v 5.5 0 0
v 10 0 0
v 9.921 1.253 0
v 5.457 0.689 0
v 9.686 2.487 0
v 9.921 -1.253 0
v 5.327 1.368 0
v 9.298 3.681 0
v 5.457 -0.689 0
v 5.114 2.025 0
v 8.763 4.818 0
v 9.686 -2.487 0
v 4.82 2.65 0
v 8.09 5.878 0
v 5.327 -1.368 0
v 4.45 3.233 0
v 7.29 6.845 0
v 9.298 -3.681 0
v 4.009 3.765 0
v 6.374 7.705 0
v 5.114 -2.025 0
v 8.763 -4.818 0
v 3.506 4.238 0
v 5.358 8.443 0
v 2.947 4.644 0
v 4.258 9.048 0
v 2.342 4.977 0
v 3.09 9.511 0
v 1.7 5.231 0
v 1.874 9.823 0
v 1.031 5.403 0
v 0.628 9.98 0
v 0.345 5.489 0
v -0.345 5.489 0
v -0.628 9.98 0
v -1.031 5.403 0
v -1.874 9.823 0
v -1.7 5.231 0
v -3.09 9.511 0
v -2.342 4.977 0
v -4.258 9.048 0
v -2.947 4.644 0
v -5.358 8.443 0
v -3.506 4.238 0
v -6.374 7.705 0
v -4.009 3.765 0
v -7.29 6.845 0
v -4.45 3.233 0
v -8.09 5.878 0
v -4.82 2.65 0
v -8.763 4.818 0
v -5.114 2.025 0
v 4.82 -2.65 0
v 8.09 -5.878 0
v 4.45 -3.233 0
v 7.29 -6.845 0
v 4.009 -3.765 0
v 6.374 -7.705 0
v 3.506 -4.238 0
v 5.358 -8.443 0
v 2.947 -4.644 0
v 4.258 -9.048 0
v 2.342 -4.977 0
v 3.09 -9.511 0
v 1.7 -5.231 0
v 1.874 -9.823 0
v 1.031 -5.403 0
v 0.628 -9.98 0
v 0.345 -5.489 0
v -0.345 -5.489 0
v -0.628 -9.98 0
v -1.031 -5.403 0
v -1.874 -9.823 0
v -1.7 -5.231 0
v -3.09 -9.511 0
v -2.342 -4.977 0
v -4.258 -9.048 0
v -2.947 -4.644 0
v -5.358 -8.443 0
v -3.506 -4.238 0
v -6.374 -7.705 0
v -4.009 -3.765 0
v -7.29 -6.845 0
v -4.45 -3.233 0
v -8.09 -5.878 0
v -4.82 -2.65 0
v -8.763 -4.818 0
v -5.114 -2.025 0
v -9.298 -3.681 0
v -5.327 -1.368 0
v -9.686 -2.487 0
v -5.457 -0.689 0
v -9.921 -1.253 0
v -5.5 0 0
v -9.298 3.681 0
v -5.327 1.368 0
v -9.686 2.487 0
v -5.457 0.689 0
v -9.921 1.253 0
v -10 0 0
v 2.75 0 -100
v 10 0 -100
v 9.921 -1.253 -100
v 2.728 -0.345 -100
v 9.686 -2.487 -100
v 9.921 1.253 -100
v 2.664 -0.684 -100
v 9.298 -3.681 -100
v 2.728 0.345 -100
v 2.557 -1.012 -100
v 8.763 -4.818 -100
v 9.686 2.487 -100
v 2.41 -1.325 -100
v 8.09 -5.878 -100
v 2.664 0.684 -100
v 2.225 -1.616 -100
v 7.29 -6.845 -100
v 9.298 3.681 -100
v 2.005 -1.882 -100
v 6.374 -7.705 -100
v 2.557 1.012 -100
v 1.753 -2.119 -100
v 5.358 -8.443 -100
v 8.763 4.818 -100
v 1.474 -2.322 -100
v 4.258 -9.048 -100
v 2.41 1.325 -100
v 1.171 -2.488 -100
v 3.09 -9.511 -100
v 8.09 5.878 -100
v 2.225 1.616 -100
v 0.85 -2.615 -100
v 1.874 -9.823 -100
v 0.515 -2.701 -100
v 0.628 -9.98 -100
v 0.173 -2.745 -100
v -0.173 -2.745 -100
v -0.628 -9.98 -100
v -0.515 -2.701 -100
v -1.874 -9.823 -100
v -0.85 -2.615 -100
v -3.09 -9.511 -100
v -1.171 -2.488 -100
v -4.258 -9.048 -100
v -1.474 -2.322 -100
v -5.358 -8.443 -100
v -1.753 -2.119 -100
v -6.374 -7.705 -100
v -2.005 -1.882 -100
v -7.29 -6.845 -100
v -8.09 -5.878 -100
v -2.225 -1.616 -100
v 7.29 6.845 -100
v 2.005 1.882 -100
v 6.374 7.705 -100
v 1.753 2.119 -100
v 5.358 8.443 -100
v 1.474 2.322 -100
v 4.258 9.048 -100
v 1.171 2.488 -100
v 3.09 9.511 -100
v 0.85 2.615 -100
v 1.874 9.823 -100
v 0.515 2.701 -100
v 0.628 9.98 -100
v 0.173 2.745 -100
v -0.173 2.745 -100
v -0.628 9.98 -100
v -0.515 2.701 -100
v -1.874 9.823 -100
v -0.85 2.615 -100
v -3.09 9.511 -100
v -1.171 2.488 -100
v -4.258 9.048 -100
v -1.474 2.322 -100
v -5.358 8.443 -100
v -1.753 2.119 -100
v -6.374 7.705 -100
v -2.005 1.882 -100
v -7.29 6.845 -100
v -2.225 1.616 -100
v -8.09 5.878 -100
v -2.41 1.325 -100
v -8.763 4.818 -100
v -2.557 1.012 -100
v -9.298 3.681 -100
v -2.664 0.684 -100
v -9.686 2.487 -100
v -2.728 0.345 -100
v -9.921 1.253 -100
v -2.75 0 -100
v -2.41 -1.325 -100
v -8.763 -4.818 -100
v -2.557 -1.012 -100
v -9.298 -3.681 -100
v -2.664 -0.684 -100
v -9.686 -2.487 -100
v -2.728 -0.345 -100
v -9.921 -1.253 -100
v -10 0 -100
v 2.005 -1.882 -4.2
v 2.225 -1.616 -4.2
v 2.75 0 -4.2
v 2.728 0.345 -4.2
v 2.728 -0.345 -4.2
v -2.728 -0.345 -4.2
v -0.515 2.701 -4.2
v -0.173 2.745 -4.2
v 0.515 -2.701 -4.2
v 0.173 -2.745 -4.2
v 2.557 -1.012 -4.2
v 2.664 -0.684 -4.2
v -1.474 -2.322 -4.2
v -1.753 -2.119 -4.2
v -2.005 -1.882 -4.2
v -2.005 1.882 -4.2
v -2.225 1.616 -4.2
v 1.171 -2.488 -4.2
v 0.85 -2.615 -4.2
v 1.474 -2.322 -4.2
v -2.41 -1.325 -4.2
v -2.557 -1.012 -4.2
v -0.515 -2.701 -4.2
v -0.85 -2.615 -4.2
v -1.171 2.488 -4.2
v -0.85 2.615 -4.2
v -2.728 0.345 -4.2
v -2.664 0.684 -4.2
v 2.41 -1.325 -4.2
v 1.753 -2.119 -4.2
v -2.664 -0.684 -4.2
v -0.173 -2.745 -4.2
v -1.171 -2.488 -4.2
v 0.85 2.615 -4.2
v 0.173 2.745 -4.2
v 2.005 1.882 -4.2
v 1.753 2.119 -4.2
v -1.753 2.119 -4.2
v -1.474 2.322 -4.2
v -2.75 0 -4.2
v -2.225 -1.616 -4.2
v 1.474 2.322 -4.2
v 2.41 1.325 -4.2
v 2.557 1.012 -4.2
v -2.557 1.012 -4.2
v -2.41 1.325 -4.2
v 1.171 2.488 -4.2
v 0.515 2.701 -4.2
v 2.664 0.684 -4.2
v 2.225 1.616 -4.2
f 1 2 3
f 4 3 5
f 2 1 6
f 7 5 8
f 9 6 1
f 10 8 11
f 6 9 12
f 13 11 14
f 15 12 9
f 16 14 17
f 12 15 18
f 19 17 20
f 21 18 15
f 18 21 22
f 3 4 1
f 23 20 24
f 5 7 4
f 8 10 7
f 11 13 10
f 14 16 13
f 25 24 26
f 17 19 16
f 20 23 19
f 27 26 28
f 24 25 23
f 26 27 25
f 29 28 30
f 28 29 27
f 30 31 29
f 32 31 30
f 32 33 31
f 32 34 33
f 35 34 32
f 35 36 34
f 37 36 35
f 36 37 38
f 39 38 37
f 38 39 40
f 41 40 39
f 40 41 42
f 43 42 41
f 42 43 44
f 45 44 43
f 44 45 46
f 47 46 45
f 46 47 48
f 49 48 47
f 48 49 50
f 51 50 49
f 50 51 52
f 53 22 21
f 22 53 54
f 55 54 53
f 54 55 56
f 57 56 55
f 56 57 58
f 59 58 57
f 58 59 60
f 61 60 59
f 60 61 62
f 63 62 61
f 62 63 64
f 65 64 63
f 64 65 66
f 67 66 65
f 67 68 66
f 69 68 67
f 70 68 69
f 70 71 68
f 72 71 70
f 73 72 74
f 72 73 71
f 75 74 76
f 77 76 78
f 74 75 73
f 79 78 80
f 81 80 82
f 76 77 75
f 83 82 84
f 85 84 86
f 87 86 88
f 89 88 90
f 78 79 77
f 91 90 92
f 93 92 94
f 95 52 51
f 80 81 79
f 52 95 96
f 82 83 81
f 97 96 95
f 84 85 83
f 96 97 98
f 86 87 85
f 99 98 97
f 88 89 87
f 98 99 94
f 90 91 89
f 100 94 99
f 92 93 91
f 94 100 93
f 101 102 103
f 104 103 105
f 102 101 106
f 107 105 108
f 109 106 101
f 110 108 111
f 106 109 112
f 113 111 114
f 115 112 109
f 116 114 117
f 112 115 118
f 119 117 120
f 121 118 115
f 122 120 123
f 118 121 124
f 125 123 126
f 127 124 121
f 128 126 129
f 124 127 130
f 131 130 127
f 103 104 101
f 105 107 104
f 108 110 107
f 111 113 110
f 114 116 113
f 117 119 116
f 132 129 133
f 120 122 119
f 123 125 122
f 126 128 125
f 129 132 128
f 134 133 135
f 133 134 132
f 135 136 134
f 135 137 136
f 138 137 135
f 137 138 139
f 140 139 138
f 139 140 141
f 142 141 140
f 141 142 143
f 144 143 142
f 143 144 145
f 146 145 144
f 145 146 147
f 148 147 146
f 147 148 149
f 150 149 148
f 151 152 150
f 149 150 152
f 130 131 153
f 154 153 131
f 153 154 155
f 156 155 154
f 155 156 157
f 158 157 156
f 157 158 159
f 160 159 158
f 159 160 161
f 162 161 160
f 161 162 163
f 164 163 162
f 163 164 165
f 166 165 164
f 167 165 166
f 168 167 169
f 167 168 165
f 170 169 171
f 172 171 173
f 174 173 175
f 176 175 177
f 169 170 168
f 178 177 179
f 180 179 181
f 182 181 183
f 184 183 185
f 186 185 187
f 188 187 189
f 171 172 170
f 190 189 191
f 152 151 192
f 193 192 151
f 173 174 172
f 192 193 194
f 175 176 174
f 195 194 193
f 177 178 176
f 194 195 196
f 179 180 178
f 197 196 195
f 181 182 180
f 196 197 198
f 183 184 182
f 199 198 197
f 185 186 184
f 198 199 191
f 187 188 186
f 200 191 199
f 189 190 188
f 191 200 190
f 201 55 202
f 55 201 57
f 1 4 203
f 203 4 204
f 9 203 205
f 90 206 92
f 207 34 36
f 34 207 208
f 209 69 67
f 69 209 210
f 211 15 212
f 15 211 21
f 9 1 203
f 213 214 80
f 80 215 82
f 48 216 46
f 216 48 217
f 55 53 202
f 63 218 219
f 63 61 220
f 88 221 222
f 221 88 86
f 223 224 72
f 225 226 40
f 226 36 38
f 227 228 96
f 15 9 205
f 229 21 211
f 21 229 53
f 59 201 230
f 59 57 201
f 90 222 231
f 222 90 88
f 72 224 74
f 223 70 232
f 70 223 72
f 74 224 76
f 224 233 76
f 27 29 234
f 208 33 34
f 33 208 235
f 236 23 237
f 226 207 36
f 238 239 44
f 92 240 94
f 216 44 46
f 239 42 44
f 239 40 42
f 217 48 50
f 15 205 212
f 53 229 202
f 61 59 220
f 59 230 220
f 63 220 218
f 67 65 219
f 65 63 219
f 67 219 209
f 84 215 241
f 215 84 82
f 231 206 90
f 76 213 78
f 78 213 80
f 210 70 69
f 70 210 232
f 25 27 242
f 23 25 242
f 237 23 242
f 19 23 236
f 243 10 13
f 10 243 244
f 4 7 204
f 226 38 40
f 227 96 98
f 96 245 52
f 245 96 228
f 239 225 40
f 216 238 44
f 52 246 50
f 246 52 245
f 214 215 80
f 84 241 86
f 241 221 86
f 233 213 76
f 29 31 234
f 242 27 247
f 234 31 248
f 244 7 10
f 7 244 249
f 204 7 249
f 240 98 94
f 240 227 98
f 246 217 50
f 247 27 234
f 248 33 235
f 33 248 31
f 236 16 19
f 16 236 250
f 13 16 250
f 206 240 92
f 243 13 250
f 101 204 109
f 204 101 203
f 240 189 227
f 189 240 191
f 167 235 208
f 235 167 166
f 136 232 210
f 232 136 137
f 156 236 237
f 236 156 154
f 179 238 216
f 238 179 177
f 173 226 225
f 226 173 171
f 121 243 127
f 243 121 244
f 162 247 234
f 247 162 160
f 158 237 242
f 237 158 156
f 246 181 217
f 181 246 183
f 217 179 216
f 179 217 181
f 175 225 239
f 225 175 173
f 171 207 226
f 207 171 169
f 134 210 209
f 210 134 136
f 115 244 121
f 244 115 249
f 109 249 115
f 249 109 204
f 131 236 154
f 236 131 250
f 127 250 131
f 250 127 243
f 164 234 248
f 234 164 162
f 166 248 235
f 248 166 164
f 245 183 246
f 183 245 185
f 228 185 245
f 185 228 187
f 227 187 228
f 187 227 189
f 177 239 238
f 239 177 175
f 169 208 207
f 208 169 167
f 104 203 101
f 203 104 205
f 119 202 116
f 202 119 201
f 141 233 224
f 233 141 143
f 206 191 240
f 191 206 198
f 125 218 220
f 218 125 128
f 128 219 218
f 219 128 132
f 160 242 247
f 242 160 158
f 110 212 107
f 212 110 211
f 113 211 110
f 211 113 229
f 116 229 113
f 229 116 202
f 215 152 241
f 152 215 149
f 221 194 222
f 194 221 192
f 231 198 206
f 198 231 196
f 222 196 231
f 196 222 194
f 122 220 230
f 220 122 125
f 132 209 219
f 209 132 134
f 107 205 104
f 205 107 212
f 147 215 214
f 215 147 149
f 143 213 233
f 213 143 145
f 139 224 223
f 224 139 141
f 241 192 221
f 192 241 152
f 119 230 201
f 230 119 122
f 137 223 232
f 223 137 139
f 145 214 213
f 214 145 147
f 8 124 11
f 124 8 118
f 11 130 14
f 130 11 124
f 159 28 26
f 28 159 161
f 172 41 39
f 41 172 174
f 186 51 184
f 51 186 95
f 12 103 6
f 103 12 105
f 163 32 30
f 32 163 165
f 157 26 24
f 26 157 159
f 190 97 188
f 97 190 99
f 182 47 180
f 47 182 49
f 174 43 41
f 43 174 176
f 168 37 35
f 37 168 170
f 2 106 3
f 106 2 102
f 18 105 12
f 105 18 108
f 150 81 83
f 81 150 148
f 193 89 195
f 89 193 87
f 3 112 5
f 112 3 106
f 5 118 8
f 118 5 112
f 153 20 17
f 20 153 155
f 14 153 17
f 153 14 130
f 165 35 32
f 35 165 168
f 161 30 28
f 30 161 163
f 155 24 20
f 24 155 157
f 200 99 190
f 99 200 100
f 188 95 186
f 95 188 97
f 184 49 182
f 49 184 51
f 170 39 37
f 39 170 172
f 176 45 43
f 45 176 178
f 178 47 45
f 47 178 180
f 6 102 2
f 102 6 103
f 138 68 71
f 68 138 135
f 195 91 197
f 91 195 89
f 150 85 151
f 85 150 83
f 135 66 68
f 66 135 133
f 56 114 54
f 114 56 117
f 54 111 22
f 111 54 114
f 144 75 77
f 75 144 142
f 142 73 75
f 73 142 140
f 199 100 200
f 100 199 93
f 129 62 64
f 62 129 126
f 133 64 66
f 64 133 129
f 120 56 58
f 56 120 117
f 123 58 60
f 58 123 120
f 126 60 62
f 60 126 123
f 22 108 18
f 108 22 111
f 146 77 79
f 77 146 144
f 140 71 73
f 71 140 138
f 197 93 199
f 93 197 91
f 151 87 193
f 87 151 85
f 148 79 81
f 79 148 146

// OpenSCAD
$fn = 50;


difference() {
	union() {
		translate(v = [0, 0, -100.0000000000]) {
			cylinder(h = 100, r = 10.0000000000);
		}
		cylinder(h = 0, r = 13.0000000000);
	}
	union() {
		translate(v = [0, 0, 0]) {
			rotate(a = [0, 0, 0]) {
				difference() {
					union() {
						#translate(v = [0, 0, -100.0000000000]) {
							cylinder(h = 100, r = 2.2500000000);
						}
						#translate(v = [0, 0, -4.2000000000]) {
							cylinder(h = 4.2000000000, r = 10.0000000000, r1 = 2.7500000000, r2 = 5.5000000000);
						}
						#translate(v = [0, 0, -100.0000000000]) {
							cylinder(h = 100, r = 2.7500000000);
						}
						#translate(v = [0, 0, -100.0000000000]) {
							cylinder(h = 100, r = 2.2500000000);
						}
					}
					union();
				}
			}
		}
	}
}
